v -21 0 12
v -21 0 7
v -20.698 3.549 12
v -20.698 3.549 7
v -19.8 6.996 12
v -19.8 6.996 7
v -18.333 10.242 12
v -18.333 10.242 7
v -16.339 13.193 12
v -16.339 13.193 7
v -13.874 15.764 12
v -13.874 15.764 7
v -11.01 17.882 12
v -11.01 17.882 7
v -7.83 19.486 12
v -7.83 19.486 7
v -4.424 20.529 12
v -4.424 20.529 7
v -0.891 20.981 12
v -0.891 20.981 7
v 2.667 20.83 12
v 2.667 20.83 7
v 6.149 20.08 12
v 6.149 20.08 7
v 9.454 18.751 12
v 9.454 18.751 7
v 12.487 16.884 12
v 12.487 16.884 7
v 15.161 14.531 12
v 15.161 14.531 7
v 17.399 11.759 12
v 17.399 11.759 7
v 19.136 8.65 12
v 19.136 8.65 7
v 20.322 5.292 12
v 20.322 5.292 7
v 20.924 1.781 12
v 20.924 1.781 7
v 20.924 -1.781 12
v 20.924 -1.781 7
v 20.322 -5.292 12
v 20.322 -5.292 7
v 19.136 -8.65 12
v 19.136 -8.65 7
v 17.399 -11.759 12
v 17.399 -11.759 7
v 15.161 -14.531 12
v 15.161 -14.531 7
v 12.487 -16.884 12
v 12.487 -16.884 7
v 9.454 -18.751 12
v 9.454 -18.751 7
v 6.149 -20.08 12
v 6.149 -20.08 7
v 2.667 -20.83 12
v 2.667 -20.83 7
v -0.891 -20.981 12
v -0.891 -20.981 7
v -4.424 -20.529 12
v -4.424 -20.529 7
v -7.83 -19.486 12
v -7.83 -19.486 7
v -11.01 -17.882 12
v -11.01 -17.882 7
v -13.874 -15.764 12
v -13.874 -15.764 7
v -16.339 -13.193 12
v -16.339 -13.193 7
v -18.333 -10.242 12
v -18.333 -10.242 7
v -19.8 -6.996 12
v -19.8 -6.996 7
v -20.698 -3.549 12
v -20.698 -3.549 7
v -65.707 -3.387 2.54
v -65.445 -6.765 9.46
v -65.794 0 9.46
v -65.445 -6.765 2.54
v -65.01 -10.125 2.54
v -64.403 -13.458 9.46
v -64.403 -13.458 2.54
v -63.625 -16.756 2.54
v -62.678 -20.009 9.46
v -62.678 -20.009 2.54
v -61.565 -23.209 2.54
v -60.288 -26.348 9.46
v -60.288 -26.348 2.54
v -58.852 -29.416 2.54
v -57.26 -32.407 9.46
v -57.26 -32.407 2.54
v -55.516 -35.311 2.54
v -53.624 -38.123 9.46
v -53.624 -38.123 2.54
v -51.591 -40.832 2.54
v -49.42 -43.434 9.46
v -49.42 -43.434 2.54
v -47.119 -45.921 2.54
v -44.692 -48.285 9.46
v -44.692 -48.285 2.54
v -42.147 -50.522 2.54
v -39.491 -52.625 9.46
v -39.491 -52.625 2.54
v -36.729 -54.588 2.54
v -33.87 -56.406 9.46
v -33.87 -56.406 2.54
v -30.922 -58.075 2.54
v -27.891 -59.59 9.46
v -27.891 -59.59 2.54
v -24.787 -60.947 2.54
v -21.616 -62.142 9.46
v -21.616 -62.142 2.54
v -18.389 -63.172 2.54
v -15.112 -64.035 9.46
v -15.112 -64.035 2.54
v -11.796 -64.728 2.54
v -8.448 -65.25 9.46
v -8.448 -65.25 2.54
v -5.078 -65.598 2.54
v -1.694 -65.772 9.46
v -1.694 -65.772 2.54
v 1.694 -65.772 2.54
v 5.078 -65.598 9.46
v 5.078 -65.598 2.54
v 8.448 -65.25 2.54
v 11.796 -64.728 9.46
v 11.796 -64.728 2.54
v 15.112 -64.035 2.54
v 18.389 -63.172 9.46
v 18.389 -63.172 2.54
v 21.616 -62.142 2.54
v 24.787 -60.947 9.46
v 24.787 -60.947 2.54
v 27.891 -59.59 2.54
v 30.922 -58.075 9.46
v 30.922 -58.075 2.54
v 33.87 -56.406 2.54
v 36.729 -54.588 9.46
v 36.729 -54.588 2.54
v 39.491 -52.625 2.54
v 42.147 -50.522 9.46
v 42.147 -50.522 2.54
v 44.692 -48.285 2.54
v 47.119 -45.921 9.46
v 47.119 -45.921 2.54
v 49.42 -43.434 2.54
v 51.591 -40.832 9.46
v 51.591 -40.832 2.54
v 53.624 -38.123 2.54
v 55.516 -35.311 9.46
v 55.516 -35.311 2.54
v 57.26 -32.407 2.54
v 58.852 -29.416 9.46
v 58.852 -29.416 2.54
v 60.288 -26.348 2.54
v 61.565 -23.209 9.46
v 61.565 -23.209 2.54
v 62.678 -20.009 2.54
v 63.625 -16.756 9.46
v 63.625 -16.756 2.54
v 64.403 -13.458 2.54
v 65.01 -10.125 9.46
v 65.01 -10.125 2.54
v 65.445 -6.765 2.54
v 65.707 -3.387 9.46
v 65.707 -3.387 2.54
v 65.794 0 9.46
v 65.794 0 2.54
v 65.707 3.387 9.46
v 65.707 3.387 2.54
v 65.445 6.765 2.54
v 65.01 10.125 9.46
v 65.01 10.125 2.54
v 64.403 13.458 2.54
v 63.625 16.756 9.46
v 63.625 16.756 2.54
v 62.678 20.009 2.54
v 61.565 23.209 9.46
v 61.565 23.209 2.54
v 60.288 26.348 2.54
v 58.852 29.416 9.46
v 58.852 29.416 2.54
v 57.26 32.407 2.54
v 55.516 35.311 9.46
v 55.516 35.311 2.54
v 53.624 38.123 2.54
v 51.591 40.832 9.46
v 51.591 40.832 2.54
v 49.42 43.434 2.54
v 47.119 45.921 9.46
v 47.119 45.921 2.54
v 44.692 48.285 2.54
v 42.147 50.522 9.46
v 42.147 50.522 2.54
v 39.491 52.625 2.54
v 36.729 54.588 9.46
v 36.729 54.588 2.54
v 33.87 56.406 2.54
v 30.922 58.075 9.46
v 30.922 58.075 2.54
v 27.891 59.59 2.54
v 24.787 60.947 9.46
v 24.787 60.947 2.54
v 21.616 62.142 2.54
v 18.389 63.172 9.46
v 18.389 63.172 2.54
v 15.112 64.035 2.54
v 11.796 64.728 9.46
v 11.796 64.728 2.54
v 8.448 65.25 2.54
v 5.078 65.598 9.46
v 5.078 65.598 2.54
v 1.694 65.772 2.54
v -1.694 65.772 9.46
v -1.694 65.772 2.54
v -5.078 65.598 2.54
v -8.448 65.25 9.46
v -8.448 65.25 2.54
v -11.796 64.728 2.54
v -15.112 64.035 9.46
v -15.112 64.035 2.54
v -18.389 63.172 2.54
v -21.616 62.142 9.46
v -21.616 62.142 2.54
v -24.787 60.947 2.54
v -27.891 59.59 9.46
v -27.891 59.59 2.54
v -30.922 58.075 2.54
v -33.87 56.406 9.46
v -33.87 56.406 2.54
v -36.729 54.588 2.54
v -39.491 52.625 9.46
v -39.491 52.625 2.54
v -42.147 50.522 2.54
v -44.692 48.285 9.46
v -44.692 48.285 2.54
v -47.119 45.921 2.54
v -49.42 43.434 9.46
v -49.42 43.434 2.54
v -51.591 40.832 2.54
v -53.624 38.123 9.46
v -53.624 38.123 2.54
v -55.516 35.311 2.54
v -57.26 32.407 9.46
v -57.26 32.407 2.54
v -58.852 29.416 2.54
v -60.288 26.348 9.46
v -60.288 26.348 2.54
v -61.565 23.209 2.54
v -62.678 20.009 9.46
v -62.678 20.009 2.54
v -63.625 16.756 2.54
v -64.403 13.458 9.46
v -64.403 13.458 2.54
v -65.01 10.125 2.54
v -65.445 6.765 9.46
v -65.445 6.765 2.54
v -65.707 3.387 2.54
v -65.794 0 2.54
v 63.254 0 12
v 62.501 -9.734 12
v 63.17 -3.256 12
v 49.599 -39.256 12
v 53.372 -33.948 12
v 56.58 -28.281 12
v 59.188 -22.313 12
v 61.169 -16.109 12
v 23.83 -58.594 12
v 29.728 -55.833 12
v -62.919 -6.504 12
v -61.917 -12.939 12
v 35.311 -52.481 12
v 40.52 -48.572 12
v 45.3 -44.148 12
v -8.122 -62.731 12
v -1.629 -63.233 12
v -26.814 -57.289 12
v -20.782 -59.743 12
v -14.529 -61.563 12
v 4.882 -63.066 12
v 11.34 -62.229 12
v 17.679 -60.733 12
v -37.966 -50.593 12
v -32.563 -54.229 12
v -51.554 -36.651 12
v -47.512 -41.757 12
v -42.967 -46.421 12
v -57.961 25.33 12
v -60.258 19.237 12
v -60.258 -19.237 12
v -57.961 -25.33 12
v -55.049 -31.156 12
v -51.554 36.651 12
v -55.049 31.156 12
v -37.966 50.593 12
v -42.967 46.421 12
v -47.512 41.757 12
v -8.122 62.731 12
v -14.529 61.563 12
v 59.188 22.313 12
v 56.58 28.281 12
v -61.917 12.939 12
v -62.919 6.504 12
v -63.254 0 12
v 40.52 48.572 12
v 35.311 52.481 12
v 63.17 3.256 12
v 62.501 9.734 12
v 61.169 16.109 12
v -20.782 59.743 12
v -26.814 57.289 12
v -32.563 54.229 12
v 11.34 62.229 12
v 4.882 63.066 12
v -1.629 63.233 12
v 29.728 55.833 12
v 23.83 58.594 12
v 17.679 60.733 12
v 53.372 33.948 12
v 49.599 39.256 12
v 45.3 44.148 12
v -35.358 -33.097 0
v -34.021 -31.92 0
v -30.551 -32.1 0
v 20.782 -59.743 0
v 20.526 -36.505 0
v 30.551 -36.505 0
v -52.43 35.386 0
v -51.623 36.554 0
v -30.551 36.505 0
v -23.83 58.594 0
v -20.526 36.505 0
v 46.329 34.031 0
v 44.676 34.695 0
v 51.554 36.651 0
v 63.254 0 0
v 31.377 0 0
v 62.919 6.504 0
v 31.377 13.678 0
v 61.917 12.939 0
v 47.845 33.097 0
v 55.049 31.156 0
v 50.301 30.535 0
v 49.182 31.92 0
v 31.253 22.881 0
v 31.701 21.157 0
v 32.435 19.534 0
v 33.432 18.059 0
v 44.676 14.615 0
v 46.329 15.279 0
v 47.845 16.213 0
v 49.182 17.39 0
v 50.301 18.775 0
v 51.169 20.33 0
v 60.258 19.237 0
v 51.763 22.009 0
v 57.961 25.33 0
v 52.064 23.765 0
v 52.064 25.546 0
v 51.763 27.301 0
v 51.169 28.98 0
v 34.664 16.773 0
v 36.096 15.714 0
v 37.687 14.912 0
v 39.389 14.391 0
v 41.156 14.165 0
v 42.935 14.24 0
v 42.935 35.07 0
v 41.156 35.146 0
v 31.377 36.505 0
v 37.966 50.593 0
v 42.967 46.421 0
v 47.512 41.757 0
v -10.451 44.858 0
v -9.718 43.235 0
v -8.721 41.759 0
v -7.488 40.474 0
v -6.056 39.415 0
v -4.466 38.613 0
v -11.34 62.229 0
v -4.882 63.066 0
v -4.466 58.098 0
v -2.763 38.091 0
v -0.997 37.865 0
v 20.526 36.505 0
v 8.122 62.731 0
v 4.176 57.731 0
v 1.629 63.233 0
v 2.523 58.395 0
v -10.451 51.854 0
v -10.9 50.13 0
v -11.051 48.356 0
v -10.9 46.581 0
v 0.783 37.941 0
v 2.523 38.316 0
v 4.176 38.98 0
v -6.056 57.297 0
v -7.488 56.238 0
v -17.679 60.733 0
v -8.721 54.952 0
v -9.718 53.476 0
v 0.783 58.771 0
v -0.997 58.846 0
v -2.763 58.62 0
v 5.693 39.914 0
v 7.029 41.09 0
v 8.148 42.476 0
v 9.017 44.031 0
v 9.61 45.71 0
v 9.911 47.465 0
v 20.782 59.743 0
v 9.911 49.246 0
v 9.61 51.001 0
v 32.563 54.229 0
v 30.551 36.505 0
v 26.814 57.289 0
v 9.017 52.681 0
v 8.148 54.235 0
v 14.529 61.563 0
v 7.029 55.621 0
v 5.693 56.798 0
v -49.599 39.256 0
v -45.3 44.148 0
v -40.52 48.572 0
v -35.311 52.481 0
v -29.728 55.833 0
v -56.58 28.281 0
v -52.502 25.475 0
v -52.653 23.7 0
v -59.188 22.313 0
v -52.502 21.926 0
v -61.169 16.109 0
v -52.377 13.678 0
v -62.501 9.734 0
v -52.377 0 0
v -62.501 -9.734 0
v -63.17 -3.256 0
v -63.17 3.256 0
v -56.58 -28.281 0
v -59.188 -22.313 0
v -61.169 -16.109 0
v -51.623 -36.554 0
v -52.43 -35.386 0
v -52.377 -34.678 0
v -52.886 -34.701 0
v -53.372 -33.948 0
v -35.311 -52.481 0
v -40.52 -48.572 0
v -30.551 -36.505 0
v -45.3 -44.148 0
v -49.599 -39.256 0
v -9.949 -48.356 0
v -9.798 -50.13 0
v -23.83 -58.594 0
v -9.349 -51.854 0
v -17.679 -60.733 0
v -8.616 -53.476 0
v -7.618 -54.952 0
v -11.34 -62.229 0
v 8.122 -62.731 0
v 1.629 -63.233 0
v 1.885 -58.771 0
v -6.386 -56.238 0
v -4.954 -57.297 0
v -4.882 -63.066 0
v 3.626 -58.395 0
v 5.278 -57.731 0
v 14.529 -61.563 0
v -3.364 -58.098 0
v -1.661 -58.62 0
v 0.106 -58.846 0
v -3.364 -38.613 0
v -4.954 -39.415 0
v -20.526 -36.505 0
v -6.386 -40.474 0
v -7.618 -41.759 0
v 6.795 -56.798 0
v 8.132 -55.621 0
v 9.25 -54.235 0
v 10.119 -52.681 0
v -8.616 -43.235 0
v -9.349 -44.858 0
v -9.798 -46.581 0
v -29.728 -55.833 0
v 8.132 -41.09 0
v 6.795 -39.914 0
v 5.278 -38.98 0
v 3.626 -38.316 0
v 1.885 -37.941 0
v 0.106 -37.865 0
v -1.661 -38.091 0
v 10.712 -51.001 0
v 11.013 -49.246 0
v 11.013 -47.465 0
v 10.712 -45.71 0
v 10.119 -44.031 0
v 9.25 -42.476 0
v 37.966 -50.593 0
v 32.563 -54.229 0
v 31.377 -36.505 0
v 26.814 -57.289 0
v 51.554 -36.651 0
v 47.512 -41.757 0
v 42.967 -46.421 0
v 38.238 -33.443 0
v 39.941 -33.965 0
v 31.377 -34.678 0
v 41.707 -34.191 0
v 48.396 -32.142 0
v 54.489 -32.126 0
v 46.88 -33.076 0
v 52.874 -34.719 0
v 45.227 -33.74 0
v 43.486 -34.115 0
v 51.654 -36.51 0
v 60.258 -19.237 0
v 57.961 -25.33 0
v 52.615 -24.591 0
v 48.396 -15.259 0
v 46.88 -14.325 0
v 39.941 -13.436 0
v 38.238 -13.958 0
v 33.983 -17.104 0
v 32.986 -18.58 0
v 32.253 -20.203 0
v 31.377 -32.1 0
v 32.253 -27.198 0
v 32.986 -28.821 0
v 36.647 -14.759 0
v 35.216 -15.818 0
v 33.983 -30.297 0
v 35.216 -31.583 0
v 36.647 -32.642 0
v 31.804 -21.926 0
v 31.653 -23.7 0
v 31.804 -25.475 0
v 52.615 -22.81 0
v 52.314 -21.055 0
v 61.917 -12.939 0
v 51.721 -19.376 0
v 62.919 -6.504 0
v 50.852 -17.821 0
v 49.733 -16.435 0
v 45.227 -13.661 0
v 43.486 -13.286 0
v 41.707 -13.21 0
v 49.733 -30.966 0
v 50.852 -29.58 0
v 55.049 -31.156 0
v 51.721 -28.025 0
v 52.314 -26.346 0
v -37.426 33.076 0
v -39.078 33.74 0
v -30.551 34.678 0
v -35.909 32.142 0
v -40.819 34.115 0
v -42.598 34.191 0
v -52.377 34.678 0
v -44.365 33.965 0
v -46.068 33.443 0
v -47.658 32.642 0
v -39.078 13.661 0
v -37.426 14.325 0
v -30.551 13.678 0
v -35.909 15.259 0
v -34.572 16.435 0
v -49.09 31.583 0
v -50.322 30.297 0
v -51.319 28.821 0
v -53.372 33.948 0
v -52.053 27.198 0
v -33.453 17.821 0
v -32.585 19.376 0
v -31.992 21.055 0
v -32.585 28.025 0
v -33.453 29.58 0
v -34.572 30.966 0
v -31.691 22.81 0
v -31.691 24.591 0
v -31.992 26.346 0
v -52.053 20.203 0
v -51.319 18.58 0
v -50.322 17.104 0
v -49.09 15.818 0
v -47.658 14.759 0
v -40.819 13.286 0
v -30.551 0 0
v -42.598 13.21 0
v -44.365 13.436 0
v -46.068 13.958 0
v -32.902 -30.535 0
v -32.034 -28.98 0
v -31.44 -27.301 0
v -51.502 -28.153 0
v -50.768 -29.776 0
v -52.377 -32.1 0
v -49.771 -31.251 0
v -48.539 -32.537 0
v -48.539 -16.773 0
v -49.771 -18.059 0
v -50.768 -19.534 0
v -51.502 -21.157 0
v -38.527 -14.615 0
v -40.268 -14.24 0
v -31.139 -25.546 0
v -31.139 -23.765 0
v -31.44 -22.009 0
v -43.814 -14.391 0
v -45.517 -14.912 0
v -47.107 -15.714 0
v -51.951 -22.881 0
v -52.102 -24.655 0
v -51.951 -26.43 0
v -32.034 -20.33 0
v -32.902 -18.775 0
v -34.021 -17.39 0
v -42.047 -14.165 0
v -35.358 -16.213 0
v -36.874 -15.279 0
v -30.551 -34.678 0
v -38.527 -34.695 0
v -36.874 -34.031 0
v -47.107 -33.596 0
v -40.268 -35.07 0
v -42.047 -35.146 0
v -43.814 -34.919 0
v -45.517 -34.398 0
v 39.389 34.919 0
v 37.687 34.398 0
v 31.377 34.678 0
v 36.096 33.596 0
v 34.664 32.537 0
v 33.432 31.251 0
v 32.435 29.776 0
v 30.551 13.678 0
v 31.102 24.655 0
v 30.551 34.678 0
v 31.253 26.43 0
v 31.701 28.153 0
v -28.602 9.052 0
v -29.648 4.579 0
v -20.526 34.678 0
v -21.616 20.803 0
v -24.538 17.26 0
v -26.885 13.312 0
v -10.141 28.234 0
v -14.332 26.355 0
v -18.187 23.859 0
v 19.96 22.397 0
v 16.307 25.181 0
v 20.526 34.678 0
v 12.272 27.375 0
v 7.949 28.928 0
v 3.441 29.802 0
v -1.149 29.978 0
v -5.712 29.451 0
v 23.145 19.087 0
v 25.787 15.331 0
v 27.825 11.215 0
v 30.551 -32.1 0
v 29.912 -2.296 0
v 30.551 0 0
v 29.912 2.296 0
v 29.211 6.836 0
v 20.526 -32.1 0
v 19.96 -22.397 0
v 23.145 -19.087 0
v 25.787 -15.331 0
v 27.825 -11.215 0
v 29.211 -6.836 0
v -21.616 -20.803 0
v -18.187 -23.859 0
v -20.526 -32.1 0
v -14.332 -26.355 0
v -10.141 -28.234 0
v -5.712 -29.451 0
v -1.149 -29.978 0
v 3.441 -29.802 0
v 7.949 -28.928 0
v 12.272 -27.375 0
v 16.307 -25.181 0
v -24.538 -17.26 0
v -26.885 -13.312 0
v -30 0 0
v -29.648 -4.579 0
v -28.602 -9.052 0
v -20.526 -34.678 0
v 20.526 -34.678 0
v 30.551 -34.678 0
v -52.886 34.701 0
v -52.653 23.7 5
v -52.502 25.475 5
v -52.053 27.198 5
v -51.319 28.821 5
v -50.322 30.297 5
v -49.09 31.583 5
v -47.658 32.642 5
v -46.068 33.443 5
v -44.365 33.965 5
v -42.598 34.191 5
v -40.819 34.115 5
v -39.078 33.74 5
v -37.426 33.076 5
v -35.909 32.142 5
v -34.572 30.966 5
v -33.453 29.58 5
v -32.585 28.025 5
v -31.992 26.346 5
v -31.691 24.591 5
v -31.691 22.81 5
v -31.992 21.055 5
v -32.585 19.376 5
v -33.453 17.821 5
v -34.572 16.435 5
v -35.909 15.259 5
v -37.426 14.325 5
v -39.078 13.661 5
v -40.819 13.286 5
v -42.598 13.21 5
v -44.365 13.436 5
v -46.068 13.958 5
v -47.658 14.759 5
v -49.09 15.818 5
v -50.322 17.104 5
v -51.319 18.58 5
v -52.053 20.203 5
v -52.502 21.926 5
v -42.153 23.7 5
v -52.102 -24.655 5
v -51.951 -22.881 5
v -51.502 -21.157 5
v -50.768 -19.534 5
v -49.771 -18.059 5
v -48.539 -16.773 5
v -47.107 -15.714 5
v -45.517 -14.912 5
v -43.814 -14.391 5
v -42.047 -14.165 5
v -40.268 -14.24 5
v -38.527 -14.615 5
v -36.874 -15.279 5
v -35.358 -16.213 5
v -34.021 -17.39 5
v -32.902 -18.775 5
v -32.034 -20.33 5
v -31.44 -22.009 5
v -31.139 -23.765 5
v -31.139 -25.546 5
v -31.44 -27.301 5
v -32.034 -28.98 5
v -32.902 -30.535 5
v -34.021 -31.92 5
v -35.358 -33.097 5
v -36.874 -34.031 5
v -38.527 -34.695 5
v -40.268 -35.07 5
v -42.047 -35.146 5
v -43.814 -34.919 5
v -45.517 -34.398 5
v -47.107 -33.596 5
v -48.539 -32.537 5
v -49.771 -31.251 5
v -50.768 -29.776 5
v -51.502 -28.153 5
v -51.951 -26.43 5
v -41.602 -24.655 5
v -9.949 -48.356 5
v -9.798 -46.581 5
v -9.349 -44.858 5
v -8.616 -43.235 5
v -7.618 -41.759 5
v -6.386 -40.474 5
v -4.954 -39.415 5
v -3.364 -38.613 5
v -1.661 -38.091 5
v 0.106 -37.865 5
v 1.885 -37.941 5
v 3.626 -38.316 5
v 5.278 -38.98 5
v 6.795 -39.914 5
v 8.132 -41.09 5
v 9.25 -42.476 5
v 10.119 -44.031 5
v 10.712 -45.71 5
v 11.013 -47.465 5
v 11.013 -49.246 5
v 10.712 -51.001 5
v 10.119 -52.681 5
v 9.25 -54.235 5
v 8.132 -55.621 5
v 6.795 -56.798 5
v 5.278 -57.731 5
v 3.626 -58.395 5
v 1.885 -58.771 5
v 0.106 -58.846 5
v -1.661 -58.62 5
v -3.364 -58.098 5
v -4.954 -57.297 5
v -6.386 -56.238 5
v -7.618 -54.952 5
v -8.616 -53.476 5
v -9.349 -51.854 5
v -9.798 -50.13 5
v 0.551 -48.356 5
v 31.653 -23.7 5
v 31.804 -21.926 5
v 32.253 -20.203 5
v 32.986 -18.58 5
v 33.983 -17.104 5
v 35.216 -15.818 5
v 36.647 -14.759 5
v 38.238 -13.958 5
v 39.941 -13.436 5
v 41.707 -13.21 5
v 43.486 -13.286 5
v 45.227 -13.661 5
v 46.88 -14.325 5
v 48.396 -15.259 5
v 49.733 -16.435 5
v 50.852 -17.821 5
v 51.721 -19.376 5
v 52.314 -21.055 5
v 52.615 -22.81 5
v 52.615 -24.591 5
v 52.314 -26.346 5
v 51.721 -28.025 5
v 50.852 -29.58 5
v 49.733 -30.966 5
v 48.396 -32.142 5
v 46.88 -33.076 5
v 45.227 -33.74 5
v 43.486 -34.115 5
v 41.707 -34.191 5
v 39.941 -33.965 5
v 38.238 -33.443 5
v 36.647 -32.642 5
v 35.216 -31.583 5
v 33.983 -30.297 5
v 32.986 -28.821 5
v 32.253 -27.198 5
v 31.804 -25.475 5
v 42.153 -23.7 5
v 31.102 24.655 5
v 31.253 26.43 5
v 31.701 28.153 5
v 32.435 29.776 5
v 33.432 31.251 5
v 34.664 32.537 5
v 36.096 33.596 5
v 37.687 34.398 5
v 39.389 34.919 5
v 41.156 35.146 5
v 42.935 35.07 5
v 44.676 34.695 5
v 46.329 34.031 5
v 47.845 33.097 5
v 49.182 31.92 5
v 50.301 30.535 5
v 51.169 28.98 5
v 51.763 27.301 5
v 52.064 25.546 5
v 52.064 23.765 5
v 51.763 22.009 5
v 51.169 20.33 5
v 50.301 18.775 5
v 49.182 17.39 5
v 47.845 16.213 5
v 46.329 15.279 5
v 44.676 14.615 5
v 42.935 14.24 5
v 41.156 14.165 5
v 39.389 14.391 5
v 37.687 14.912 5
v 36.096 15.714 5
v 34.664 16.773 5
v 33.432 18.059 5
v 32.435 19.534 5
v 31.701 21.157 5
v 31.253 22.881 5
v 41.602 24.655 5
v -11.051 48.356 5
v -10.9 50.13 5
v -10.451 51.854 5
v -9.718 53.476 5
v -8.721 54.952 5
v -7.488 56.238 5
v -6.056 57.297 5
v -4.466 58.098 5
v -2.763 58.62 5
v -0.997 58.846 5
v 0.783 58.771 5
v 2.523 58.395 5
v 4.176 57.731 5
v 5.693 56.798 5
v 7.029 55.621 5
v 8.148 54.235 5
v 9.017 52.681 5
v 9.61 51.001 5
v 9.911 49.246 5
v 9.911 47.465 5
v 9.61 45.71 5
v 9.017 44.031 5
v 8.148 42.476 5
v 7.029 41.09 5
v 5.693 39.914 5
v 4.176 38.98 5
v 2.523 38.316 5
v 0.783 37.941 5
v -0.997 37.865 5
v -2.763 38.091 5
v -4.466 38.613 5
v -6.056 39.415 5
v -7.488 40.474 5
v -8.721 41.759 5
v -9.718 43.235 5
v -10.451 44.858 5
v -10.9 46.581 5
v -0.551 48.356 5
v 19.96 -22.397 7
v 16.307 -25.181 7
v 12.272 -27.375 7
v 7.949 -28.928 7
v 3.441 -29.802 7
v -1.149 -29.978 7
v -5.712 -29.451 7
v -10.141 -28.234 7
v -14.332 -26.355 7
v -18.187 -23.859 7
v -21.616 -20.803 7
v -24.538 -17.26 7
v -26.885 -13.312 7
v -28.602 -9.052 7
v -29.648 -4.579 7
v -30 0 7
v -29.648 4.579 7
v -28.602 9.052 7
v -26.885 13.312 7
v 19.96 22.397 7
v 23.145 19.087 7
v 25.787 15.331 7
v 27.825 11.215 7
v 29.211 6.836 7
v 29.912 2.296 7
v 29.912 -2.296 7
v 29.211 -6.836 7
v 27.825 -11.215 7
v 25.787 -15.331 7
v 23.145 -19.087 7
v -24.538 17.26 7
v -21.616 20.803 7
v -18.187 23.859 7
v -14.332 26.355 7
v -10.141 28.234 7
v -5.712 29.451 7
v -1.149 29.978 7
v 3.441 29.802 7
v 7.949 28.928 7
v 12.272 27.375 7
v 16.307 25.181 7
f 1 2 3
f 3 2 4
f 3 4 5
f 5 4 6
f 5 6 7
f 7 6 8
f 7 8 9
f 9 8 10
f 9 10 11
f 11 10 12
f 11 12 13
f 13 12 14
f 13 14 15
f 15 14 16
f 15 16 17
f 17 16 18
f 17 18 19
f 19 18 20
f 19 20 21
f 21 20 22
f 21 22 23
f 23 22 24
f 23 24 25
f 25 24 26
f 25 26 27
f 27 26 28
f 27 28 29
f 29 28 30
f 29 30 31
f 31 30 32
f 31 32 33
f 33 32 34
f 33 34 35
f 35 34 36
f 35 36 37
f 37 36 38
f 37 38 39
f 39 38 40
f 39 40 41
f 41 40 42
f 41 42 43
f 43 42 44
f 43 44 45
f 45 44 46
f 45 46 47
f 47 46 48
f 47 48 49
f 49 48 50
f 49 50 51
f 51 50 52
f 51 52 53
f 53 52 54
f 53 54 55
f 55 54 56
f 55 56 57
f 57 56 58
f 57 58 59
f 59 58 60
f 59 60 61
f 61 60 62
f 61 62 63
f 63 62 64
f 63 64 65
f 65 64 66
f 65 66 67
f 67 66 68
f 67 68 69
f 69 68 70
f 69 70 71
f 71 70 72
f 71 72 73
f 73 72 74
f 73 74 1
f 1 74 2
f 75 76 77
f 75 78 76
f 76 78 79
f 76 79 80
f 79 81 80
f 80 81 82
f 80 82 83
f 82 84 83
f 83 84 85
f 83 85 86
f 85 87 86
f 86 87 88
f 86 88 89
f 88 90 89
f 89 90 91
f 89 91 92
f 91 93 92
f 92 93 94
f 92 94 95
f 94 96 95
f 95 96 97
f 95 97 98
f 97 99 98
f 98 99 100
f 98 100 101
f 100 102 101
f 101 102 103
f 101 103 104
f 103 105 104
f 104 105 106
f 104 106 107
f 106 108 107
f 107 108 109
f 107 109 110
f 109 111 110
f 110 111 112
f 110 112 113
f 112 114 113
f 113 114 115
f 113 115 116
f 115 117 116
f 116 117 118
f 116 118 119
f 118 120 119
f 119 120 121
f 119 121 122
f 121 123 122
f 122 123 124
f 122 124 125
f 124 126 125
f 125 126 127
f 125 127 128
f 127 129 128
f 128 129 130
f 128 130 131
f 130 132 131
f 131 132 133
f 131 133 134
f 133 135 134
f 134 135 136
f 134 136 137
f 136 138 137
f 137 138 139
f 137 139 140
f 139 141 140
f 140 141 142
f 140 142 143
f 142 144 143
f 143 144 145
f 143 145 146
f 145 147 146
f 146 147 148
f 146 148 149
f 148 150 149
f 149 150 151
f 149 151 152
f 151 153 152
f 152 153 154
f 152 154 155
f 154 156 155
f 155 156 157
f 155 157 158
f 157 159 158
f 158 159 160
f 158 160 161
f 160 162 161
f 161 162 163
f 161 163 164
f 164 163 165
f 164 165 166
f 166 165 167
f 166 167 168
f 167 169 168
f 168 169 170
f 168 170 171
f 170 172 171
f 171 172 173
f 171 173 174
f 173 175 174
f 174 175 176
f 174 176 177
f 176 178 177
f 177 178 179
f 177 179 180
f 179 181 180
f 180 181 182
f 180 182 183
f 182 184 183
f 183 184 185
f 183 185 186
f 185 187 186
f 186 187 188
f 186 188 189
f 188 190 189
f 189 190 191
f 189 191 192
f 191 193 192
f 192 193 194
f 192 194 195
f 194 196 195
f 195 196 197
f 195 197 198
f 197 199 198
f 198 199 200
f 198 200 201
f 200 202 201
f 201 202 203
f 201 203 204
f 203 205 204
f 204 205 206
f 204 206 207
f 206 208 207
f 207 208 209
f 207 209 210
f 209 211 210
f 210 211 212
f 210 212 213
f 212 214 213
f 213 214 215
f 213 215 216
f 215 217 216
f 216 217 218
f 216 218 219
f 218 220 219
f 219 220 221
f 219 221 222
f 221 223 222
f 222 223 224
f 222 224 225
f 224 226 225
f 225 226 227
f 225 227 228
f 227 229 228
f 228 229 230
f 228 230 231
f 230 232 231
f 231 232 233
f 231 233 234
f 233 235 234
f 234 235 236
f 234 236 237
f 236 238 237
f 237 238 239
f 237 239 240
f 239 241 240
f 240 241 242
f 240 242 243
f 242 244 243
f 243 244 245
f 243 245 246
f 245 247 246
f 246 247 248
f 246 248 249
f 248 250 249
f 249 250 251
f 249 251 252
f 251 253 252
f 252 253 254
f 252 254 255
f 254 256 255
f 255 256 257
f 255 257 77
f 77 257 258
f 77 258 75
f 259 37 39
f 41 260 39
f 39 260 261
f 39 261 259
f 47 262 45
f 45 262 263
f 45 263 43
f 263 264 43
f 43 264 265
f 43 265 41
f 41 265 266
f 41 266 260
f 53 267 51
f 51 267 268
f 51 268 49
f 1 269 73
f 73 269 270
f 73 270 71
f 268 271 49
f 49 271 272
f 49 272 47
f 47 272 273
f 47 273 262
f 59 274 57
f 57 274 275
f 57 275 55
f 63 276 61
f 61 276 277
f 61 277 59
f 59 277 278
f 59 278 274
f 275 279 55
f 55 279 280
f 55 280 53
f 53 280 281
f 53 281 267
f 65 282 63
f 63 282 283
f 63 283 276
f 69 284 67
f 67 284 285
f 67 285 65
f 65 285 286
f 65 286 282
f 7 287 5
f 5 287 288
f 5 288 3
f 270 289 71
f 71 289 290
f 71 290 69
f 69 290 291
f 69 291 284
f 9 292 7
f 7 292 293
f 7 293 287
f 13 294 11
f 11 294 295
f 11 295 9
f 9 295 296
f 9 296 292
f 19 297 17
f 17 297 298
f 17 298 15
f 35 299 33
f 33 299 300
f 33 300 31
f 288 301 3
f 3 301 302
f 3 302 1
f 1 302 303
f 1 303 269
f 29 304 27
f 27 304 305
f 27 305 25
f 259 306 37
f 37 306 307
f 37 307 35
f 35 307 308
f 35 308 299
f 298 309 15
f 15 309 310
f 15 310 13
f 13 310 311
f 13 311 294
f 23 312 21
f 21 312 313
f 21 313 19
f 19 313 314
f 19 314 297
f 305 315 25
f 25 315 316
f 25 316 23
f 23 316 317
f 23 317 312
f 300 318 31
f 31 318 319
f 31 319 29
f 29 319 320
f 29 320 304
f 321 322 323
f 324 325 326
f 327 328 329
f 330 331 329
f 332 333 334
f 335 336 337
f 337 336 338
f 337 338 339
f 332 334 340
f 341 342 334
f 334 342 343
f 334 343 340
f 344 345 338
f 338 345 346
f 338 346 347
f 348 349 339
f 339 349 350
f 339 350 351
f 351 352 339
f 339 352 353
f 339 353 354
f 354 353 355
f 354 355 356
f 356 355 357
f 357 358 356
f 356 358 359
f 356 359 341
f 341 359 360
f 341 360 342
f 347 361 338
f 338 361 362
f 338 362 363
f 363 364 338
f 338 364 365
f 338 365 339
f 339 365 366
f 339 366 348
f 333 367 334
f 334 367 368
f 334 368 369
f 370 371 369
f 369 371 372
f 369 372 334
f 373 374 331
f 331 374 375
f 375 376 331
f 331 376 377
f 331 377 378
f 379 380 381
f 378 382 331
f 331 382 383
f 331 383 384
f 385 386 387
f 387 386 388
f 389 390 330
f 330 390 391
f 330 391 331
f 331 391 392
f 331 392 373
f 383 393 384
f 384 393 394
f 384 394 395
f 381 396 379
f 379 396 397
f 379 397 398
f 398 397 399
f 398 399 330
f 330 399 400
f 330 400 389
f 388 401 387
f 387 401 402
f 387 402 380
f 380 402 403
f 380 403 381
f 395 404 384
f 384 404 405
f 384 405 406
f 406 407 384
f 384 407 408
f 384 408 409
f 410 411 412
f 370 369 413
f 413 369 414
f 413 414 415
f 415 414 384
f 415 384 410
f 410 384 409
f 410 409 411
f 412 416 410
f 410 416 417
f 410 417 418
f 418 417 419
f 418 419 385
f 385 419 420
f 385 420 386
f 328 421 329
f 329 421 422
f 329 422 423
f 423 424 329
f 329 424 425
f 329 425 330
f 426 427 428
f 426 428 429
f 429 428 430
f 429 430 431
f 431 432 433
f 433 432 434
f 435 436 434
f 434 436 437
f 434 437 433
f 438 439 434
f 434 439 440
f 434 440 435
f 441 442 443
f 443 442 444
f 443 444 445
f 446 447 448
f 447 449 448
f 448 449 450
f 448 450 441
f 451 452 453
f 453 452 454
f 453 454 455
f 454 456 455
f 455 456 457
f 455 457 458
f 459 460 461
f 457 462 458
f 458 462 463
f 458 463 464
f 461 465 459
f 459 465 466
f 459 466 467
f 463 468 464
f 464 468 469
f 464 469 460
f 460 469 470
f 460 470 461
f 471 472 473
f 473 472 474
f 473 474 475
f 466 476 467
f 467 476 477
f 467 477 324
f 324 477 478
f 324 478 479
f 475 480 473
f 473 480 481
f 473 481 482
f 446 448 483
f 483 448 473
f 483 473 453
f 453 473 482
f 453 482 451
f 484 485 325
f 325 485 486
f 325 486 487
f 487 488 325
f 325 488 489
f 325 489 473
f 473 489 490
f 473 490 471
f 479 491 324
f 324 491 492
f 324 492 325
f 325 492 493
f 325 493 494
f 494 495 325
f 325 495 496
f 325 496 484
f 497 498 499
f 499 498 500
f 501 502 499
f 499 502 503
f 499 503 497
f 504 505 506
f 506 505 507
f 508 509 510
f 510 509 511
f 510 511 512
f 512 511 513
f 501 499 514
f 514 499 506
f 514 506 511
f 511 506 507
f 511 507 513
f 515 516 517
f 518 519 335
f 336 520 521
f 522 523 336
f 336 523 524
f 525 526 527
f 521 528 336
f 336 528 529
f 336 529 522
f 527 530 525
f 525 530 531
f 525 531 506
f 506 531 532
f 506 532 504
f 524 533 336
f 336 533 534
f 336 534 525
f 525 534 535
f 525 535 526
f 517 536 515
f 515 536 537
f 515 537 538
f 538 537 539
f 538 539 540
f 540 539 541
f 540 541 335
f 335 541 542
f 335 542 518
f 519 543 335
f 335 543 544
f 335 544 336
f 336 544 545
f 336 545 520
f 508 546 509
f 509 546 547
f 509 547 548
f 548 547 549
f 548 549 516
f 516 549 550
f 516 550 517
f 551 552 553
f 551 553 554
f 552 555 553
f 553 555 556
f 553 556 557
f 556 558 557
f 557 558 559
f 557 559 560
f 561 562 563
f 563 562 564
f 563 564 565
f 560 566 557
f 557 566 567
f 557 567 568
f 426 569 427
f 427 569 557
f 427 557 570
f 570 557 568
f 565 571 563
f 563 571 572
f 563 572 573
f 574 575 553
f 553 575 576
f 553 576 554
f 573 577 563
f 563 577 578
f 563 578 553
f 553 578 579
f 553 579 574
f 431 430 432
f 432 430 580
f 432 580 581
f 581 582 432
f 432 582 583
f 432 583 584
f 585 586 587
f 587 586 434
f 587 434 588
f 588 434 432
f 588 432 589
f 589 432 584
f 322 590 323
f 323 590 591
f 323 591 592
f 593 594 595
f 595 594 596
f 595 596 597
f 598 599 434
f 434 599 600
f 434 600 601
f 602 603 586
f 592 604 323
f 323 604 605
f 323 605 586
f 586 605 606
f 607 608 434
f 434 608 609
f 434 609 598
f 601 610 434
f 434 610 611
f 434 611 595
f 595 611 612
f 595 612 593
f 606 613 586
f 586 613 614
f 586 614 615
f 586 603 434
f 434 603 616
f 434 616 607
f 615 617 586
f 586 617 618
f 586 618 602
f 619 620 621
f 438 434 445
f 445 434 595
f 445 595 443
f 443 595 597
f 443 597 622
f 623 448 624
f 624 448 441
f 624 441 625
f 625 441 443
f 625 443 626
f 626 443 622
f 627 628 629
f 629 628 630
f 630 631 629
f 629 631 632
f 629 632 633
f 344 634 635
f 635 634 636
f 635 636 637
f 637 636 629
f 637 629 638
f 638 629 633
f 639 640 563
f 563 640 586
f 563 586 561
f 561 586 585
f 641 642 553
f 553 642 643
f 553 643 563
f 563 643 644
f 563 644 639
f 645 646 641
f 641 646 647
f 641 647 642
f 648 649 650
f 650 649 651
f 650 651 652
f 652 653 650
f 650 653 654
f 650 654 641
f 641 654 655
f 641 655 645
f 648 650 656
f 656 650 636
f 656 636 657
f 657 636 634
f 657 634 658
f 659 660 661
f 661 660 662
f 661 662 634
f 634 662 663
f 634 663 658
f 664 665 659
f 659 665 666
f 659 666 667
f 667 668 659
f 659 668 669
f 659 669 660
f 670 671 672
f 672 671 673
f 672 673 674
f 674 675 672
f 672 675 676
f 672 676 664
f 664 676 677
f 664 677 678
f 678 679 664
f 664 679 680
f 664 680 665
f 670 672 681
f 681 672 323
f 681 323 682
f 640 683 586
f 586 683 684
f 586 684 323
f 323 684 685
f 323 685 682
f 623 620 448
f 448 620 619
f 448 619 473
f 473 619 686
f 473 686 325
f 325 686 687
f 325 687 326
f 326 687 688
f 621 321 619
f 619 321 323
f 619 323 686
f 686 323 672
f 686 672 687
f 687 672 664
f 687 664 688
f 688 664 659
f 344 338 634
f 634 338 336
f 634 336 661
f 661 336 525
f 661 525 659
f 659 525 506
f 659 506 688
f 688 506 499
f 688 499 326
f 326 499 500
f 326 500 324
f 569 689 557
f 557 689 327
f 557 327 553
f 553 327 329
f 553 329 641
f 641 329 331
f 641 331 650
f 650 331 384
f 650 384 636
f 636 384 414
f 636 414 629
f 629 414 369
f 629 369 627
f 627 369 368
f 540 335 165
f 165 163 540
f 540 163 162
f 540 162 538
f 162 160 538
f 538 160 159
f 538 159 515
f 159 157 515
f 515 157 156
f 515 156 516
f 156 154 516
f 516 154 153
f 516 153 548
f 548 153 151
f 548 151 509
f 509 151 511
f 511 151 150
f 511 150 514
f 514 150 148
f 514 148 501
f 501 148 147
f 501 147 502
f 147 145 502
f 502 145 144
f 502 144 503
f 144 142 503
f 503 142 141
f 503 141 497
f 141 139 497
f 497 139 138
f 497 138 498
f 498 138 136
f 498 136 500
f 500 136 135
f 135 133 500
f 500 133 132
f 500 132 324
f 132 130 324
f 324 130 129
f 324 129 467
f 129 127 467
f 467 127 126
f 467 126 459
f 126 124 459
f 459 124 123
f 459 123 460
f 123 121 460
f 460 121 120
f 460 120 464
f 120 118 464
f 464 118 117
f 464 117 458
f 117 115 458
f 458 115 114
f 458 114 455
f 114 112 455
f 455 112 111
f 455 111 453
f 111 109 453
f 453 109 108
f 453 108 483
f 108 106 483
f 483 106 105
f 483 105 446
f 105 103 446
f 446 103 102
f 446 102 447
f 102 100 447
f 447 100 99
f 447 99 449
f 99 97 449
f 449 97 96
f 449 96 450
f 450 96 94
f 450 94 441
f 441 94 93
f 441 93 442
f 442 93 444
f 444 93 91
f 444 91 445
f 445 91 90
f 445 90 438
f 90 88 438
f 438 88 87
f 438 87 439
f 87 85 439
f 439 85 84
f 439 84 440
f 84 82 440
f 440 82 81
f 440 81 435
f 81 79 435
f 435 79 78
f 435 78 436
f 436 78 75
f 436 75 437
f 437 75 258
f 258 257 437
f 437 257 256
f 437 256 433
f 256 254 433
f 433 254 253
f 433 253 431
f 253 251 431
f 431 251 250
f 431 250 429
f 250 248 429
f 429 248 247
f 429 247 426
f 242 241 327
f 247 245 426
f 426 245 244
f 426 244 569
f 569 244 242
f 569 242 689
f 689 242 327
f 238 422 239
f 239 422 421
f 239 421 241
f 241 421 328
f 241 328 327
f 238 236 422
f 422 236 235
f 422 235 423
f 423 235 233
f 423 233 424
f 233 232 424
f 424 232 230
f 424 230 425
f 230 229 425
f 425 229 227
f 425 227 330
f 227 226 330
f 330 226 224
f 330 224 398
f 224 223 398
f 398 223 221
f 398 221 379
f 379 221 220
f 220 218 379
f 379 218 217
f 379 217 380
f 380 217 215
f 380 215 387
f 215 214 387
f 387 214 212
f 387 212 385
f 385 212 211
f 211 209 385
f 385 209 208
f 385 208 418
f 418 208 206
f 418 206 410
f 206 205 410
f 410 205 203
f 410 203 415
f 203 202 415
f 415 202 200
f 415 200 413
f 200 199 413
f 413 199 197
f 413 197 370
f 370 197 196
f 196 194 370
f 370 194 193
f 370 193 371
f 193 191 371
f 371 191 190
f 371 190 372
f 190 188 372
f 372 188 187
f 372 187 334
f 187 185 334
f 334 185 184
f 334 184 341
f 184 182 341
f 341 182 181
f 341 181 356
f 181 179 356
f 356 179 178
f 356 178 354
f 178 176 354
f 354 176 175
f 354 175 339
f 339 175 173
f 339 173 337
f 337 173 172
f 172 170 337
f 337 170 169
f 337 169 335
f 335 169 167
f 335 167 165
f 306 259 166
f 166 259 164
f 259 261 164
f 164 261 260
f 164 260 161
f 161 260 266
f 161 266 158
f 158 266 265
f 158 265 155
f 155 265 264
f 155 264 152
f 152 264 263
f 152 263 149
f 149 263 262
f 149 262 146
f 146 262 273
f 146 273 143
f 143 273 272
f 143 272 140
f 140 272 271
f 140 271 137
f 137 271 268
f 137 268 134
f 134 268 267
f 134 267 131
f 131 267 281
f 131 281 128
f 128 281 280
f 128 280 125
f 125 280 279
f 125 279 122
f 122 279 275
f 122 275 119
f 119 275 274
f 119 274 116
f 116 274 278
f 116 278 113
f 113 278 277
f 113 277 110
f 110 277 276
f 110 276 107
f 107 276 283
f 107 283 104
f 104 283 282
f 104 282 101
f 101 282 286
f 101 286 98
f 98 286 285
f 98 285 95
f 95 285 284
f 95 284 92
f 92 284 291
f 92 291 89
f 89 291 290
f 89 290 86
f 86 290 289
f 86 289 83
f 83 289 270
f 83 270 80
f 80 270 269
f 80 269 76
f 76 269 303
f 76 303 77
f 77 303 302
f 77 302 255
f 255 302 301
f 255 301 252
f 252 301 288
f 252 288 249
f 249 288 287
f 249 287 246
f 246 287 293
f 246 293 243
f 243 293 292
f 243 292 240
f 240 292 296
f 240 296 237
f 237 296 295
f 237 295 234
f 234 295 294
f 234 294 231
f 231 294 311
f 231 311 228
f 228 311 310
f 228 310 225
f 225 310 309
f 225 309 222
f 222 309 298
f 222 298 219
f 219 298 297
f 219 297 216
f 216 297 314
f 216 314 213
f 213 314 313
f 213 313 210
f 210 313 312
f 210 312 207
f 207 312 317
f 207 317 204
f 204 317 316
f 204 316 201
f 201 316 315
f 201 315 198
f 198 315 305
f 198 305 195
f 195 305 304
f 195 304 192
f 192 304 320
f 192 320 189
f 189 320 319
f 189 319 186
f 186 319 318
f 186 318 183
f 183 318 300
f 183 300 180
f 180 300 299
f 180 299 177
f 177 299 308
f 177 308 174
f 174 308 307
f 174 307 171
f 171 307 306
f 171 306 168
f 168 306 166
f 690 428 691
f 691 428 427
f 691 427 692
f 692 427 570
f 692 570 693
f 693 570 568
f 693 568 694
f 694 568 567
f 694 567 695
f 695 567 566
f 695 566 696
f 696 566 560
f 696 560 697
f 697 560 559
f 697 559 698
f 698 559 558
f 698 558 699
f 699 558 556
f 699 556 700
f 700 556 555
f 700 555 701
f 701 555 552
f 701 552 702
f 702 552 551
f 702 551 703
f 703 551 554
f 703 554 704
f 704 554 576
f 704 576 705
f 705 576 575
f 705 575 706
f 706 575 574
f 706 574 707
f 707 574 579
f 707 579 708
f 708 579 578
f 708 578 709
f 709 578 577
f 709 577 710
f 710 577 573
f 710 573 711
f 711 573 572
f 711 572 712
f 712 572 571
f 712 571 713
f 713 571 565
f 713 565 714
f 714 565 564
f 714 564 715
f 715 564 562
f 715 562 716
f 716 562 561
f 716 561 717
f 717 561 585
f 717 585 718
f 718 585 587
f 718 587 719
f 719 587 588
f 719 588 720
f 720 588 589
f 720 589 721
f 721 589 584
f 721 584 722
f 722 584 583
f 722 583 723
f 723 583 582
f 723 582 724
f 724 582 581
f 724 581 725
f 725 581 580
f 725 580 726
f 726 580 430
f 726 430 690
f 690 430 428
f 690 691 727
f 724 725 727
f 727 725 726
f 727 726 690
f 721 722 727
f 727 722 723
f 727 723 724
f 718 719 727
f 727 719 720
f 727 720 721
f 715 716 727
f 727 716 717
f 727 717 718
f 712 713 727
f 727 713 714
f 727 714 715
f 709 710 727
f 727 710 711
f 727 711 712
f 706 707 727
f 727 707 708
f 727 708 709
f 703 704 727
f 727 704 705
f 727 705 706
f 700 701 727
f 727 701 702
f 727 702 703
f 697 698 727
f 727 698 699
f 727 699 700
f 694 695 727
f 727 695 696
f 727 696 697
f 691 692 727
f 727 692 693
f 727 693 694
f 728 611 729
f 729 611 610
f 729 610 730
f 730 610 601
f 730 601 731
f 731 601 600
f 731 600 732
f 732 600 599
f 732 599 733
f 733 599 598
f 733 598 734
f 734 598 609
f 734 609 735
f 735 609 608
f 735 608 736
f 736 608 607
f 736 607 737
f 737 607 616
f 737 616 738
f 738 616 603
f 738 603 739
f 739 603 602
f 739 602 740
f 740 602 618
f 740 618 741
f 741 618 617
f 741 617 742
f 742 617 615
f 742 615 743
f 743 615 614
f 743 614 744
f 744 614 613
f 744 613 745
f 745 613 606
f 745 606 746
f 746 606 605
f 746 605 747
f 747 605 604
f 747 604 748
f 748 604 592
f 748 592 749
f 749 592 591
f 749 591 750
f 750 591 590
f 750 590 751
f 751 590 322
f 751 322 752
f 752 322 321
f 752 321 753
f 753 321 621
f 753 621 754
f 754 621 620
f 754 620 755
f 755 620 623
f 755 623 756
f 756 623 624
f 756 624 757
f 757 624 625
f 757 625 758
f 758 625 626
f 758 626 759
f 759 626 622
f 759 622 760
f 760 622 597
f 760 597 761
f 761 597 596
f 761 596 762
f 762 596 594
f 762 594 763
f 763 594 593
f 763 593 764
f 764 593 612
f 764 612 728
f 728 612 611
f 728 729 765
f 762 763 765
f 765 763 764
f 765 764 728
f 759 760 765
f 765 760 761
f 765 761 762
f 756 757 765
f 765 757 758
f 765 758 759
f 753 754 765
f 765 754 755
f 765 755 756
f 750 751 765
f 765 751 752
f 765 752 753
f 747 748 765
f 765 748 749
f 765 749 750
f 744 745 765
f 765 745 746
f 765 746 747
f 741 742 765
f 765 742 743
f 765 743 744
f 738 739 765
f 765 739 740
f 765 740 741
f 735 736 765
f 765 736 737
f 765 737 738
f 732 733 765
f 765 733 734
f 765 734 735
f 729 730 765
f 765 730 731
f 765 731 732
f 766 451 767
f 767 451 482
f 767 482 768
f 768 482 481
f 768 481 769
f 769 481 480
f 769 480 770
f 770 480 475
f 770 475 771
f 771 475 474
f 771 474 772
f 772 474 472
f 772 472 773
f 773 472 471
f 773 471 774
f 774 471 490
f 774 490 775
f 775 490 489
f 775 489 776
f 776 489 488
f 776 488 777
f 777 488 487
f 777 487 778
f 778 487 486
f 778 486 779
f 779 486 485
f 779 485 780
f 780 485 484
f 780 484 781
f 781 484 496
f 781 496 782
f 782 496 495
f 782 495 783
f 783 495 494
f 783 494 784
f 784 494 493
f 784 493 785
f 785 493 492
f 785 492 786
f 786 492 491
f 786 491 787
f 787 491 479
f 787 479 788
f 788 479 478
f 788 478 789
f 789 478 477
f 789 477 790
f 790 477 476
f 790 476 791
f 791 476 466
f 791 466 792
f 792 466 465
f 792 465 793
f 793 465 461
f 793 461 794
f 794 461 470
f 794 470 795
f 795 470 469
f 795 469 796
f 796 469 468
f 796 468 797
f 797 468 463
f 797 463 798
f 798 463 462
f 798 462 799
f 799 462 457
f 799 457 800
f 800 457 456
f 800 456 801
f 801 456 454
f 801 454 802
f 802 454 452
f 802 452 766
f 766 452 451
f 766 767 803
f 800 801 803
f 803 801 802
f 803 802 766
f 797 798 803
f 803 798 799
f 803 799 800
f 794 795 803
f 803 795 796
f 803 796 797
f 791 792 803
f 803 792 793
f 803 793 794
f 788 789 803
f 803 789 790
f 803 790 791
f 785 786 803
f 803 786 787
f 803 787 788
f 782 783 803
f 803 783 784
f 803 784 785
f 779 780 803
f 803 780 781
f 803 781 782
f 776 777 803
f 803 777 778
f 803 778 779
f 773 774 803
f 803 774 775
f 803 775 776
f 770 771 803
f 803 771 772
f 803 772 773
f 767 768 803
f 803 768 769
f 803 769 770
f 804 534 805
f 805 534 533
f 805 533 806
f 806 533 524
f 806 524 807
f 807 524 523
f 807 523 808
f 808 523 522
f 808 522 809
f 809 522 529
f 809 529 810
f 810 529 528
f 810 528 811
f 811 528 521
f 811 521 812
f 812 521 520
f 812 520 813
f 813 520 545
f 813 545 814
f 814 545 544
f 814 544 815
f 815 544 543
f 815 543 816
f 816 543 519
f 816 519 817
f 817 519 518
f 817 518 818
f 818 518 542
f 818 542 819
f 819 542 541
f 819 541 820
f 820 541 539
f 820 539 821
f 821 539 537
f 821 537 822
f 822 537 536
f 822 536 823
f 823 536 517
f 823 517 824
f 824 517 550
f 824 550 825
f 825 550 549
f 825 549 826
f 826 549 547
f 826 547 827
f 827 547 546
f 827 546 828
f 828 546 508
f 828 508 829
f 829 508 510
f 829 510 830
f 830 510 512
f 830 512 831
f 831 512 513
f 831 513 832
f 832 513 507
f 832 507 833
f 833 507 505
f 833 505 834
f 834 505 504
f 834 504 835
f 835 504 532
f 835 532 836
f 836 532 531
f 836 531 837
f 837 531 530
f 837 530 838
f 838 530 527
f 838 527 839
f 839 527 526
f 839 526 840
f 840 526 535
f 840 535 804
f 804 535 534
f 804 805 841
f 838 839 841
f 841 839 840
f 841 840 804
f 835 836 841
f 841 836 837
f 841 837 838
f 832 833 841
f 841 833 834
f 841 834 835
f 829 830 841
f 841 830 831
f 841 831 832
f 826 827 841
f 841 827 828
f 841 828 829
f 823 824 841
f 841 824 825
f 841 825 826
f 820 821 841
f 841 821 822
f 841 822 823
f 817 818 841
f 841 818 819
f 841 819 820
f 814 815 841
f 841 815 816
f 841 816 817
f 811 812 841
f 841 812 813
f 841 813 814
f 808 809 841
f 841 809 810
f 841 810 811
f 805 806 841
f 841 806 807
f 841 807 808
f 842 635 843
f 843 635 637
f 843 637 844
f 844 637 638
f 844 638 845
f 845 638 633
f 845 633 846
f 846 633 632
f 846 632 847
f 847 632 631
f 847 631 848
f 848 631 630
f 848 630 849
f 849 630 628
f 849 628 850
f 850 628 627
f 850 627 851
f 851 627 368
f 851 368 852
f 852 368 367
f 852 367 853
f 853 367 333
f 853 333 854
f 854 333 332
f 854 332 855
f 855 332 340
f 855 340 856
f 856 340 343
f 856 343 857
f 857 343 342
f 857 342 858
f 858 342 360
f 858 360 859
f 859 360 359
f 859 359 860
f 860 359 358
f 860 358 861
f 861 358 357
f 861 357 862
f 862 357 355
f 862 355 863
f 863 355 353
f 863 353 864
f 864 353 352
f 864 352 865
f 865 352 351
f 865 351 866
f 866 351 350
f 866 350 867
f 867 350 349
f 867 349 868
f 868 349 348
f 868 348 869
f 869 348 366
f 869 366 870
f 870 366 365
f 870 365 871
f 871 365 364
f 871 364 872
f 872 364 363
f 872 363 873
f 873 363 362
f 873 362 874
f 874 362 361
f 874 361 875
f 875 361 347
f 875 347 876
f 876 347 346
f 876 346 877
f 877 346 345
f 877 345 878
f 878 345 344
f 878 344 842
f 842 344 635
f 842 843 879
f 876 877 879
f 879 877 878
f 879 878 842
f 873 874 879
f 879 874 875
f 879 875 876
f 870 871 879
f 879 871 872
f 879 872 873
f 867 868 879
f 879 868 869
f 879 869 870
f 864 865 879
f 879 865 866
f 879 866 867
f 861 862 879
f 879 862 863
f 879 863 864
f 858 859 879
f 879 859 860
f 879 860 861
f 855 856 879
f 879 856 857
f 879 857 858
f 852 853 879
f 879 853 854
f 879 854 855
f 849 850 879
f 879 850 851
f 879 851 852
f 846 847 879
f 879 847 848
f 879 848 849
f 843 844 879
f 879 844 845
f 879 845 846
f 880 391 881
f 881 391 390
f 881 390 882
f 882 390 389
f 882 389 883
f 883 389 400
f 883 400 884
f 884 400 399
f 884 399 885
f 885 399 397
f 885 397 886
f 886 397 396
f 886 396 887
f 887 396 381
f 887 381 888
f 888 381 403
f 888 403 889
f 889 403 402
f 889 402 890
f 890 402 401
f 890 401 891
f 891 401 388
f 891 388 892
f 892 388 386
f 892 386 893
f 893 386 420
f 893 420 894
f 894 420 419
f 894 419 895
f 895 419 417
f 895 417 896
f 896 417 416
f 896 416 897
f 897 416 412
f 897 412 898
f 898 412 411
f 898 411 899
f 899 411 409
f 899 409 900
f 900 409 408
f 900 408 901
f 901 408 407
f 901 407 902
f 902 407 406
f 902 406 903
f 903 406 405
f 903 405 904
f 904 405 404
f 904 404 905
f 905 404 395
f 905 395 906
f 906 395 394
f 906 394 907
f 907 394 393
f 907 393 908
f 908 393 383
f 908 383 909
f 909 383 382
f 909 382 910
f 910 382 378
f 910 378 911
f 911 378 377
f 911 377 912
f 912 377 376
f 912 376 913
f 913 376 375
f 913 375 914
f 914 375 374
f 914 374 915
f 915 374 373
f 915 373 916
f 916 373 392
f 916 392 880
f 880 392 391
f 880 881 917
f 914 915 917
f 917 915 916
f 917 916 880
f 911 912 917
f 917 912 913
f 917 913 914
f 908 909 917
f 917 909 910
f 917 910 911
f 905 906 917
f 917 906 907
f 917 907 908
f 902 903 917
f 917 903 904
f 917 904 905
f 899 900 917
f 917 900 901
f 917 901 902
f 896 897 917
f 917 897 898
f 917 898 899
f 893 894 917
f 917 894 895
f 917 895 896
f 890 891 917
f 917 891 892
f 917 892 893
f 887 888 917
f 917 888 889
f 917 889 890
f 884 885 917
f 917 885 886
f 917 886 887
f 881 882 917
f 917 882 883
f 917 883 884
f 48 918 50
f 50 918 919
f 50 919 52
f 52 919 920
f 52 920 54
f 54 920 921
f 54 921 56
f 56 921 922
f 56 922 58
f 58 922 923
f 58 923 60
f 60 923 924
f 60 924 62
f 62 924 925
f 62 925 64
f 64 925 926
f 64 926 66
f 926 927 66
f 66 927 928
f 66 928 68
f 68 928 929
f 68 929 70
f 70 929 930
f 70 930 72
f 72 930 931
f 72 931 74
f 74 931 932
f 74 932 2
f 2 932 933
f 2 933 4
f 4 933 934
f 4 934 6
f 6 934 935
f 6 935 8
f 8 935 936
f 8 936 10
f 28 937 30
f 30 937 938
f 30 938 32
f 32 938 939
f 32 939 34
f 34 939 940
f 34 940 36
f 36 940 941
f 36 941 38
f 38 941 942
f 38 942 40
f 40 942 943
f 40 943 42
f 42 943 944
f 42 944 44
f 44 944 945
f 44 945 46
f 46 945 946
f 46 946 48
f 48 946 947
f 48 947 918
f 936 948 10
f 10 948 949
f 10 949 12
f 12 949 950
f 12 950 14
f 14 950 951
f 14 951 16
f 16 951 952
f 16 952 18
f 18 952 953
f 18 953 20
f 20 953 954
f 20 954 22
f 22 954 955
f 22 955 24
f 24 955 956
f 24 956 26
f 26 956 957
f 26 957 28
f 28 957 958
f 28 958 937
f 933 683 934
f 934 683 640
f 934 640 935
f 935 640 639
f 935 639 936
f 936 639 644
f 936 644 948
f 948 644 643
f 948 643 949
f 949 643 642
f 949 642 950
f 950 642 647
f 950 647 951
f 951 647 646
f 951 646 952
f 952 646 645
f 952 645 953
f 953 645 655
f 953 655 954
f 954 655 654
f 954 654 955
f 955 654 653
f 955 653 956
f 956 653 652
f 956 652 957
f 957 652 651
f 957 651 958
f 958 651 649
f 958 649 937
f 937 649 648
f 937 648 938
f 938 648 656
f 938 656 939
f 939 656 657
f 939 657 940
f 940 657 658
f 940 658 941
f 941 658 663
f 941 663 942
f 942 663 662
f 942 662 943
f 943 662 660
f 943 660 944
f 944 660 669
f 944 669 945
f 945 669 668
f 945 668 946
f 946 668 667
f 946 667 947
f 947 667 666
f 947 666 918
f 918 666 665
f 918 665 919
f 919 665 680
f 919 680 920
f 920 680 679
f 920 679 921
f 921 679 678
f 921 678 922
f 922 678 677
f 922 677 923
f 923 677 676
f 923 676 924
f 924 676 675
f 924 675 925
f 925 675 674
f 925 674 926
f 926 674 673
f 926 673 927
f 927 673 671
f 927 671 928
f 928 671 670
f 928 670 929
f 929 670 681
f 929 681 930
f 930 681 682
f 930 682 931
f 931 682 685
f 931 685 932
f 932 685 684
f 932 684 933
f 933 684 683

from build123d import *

# Parameters (mm, degrees)
ESQUISSE1_R             = 65.794178673
BOSS_EXTRU_1_DEPTH      = 12
CONG_1_SIZE             = 2.54
ESQUISSE4_R             = 10.5
ENL_V_MAT_EXTRU_2_DEPTH = 5
ESQUISSE2_R             = 21
ENL_V_MAT_EXTRU_4_DEPTH = 94.817631043
ESQUISSE5_R             = 30
ENL_V_MAT_EXTRU_5_DEPTH = 7


with BuildPart() as part:
    # Esquisse1 → Boss.-Extru.1 (new body)
    with BuildSketch(Plane.XY):
        Circle(ESQUISSE1_R)
    extrude(amount=BOSS_EXTRU_1_DEPTH)

    # Congé1
    cong_1_edges = [part.edges().sort_by_distance(p)[0] for p in [
        (-65.794178673, 0, 0),
        (-65.794178673, 0, 12),
    ]]
    chamfer(cong_1_edges, length=CONG_1_SIZE)

    # Esquisse4 → Enlèv. mat.-Extru.2 (cut)
    with BuildSketch(Plane(origin=(0, 0, 0), x_dir=(-1, 0, 0), z_dir=(0, 0, -1))):
        with Locations((0.551144242, 48.355572121)):
            Circle(ESQUISSE4_R)
        with Locations((42.152725992, 23.700481146)):
            Circle(ESQUISSE4_R)
        with Locations((41.60158175, -24.655090975)):
            Circle(ESQUISSE4_R)
        with Locations((-0.551144242, -48.355572121)):
            Circle(ESQUISSE4_R)
        with Locations((-42.152725992, -23.700481146)):
            Circle(ESQUISSE4_R)
        with Locations((-41.60158175, 24.655090975)):
            Circle(ESQUISSE4_R)
    extrude(amount=-ENL_V_MAT_EXTRU_2_DEPTH, mode=Mode.SUBTRACT)

    # Esquisse2 → Enlèv. mat.-Extru.4 (cut, through all)
    with BuildSketch(Plane(origin=(0, 0, 0), x_dir=(-1, 0, 0), z_dir=(0, 0, -1))):
        Circle(ESQUISSE2_R)
    extrude(amount=-ENL_V_MAT_EXTRU_4_DEPTH, mode=Mode.SUBTRACT)

    # Esquisse5 → Enlèv. mat.-Extru.5 (cut)
    with BuildSketch(Plane(origin=(0, 0, 0), x_dir=(-1, 0, 0), z_dir=(0, 0, -1))):
        Circle(ESQUISSE5_R)
    extrude(amount=-ENL_V_MAT_EXTRU_5_DEPTH, mode=Mode.SUBTRACT)


solid = part.part
